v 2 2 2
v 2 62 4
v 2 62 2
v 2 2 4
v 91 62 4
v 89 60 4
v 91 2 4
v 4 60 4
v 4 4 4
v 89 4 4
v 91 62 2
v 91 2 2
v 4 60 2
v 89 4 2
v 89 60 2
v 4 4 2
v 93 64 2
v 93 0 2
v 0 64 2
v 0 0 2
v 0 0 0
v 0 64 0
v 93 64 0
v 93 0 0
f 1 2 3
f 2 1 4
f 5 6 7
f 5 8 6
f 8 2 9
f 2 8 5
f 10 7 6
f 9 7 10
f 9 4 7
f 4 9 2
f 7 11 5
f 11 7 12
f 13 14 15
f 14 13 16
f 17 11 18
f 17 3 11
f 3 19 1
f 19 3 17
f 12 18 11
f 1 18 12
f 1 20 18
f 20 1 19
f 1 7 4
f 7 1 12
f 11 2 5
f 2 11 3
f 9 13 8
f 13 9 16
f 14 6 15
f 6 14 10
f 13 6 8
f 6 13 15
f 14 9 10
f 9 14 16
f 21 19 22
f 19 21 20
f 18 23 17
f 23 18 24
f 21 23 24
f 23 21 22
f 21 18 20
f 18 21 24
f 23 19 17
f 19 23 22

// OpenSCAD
module Unterteil() {
    cube([93,64,2]);
    translate([2, 2, 2]) difference() {
        cube([89,60,2]);
        translate([2, 2, -1]) cube([85,56,4]);
    }
}

Unterteil();
